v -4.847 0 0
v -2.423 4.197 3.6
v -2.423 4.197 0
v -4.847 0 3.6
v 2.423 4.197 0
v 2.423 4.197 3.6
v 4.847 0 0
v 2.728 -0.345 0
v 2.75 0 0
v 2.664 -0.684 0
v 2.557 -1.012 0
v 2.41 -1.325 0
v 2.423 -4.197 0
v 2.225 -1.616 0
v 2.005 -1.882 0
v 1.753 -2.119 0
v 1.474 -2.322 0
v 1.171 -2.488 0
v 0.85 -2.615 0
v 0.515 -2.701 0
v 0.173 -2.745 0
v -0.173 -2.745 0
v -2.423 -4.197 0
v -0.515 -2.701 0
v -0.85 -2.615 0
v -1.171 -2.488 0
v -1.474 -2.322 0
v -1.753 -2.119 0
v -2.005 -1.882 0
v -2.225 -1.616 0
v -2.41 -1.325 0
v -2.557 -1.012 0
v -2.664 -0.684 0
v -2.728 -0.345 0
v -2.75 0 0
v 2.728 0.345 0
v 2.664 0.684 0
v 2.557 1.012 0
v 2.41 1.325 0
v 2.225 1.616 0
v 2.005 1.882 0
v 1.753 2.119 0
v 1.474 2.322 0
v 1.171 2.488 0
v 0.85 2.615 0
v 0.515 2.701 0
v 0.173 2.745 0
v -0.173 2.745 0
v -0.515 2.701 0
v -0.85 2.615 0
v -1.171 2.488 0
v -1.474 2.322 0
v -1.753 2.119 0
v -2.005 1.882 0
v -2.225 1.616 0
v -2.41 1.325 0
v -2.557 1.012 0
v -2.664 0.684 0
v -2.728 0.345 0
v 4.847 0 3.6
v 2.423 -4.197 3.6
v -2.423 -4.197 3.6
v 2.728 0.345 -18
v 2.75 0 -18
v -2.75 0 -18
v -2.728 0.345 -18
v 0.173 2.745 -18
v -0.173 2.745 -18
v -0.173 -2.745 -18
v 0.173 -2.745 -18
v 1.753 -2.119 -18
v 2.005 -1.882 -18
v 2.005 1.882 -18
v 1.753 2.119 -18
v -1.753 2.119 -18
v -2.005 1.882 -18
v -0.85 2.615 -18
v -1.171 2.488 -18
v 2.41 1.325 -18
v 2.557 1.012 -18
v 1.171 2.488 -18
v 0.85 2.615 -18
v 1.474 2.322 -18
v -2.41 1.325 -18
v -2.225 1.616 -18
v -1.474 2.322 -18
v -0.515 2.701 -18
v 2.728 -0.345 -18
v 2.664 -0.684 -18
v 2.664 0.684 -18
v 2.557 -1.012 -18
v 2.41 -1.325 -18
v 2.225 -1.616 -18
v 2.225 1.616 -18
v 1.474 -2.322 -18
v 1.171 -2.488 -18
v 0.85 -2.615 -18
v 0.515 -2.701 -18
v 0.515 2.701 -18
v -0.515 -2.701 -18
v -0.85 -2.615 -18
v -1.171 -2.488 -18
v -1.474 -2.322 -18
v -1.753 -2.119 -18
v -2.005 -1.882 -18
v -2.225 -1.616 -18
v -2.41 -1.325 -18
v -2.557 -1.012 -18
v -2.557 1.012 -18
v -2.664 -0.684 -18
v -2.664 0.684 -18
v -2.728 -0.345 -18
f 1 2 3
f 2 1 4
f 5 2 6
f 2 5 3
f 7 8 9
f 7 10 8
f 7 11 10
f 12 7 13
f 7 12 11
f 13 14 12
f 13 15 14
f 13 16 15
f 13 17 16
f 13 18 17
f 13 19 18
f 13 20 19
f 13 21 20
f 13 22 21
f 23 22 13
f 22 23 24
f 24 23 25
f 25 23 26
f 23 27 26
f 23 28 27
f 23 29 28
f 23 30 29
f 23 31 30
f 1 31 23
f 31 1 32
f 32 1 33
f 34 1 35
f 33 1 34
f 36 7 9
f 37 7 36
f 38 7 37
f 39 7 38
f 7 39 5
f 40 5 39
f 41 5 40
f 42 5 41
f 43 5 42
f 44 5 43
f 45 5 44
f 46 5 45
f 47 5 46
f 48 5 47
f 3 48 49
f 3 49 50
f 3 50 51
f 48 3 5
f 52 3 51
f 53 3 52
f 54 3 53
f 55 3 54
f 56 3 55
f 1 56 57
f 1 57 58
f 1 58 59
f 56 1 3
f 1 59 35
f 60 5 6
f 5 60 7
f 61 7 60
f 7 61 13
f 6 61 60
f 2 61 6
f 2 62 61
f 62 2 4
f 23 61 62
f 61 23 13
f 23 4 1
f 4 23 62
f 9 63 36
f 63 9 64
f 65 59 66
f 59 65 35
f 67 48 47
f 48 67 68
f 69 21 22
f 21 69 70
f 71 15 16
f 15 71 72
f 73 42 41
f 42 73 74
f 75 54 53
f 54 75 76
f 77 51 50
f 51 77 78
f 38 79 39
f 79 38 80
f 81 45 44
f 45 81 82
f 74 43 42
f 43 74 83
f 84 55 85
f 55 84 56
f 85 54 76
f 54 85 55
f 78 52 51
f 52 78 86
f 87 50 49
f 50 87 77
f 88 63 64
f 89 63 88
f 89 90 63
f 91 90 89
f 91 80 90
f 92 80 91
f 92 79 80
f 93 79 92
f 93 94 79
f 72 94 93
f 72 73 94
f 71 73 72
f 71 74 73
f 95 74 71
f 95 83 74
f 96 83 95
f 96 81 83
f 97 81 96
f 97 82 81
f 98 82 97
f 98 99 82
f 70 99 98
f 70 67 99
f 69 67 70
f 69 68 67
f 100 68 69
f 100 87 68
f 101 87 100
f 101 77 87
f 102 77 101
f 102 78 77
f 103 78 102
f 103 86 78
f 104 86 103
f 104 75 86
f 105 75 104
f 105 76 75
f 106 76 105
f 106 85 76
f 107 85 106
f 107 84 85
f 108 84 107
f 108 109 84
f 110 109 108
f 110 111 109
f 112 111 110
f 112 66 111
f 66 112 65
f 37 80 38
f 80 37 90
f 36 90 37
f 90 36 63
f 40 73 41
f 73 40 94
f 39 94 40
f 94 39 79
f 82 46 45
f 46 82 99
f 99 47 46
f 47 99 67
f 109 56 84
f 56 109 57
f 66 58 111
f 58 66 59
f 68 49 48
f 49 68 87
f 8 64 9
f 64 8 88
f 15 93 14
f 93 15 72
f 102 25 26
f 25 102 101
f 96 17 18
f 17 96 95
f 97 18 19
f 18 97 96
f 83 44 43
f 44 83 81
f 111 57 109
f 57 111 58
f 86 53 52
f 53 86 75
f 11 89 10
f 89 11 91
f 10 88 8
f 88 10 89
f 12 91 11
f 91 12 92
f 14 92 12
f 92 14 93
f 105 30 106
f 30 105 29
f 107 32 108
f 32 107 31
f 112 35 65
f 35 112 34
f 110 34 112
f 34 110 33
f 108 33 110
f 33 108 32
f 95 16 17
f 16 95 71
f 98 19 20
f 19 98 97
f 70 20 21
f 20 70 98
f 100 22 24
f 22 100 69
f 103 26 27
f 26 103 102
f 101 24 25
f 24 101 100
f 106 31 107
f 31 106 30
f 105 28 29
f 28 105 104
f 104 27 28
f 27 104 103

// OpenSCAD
$fn = 50;


difference() {
	union() {
		translate(v = [0, 0, 0]) {
			rotate(a = [0, 0, 0]) {
				translate(v = [0, 0, 0]) {
					rotate(a = [0, 0, 0]) {
						linear_extrude(height = 3.6000000000) {
							polygon(points = [[4.8468000000, 0.0000000000], [2.4234000000, 4.1974519271], [-2.4234000000, 4.1974519271], [-4.8468000000, 0.0000000000], [-2.4234000000, -4.1974519271], [2.4234000000, -4.1974519271]]);
						}
					}
				}
			}
		}
		translate(v = [0, 0, -18]) {
			rotate(a = [0, 0, 0]) {
				cylinder(h = 18, r = 2.7500000000);
			}
		}
	}
	union();
}
